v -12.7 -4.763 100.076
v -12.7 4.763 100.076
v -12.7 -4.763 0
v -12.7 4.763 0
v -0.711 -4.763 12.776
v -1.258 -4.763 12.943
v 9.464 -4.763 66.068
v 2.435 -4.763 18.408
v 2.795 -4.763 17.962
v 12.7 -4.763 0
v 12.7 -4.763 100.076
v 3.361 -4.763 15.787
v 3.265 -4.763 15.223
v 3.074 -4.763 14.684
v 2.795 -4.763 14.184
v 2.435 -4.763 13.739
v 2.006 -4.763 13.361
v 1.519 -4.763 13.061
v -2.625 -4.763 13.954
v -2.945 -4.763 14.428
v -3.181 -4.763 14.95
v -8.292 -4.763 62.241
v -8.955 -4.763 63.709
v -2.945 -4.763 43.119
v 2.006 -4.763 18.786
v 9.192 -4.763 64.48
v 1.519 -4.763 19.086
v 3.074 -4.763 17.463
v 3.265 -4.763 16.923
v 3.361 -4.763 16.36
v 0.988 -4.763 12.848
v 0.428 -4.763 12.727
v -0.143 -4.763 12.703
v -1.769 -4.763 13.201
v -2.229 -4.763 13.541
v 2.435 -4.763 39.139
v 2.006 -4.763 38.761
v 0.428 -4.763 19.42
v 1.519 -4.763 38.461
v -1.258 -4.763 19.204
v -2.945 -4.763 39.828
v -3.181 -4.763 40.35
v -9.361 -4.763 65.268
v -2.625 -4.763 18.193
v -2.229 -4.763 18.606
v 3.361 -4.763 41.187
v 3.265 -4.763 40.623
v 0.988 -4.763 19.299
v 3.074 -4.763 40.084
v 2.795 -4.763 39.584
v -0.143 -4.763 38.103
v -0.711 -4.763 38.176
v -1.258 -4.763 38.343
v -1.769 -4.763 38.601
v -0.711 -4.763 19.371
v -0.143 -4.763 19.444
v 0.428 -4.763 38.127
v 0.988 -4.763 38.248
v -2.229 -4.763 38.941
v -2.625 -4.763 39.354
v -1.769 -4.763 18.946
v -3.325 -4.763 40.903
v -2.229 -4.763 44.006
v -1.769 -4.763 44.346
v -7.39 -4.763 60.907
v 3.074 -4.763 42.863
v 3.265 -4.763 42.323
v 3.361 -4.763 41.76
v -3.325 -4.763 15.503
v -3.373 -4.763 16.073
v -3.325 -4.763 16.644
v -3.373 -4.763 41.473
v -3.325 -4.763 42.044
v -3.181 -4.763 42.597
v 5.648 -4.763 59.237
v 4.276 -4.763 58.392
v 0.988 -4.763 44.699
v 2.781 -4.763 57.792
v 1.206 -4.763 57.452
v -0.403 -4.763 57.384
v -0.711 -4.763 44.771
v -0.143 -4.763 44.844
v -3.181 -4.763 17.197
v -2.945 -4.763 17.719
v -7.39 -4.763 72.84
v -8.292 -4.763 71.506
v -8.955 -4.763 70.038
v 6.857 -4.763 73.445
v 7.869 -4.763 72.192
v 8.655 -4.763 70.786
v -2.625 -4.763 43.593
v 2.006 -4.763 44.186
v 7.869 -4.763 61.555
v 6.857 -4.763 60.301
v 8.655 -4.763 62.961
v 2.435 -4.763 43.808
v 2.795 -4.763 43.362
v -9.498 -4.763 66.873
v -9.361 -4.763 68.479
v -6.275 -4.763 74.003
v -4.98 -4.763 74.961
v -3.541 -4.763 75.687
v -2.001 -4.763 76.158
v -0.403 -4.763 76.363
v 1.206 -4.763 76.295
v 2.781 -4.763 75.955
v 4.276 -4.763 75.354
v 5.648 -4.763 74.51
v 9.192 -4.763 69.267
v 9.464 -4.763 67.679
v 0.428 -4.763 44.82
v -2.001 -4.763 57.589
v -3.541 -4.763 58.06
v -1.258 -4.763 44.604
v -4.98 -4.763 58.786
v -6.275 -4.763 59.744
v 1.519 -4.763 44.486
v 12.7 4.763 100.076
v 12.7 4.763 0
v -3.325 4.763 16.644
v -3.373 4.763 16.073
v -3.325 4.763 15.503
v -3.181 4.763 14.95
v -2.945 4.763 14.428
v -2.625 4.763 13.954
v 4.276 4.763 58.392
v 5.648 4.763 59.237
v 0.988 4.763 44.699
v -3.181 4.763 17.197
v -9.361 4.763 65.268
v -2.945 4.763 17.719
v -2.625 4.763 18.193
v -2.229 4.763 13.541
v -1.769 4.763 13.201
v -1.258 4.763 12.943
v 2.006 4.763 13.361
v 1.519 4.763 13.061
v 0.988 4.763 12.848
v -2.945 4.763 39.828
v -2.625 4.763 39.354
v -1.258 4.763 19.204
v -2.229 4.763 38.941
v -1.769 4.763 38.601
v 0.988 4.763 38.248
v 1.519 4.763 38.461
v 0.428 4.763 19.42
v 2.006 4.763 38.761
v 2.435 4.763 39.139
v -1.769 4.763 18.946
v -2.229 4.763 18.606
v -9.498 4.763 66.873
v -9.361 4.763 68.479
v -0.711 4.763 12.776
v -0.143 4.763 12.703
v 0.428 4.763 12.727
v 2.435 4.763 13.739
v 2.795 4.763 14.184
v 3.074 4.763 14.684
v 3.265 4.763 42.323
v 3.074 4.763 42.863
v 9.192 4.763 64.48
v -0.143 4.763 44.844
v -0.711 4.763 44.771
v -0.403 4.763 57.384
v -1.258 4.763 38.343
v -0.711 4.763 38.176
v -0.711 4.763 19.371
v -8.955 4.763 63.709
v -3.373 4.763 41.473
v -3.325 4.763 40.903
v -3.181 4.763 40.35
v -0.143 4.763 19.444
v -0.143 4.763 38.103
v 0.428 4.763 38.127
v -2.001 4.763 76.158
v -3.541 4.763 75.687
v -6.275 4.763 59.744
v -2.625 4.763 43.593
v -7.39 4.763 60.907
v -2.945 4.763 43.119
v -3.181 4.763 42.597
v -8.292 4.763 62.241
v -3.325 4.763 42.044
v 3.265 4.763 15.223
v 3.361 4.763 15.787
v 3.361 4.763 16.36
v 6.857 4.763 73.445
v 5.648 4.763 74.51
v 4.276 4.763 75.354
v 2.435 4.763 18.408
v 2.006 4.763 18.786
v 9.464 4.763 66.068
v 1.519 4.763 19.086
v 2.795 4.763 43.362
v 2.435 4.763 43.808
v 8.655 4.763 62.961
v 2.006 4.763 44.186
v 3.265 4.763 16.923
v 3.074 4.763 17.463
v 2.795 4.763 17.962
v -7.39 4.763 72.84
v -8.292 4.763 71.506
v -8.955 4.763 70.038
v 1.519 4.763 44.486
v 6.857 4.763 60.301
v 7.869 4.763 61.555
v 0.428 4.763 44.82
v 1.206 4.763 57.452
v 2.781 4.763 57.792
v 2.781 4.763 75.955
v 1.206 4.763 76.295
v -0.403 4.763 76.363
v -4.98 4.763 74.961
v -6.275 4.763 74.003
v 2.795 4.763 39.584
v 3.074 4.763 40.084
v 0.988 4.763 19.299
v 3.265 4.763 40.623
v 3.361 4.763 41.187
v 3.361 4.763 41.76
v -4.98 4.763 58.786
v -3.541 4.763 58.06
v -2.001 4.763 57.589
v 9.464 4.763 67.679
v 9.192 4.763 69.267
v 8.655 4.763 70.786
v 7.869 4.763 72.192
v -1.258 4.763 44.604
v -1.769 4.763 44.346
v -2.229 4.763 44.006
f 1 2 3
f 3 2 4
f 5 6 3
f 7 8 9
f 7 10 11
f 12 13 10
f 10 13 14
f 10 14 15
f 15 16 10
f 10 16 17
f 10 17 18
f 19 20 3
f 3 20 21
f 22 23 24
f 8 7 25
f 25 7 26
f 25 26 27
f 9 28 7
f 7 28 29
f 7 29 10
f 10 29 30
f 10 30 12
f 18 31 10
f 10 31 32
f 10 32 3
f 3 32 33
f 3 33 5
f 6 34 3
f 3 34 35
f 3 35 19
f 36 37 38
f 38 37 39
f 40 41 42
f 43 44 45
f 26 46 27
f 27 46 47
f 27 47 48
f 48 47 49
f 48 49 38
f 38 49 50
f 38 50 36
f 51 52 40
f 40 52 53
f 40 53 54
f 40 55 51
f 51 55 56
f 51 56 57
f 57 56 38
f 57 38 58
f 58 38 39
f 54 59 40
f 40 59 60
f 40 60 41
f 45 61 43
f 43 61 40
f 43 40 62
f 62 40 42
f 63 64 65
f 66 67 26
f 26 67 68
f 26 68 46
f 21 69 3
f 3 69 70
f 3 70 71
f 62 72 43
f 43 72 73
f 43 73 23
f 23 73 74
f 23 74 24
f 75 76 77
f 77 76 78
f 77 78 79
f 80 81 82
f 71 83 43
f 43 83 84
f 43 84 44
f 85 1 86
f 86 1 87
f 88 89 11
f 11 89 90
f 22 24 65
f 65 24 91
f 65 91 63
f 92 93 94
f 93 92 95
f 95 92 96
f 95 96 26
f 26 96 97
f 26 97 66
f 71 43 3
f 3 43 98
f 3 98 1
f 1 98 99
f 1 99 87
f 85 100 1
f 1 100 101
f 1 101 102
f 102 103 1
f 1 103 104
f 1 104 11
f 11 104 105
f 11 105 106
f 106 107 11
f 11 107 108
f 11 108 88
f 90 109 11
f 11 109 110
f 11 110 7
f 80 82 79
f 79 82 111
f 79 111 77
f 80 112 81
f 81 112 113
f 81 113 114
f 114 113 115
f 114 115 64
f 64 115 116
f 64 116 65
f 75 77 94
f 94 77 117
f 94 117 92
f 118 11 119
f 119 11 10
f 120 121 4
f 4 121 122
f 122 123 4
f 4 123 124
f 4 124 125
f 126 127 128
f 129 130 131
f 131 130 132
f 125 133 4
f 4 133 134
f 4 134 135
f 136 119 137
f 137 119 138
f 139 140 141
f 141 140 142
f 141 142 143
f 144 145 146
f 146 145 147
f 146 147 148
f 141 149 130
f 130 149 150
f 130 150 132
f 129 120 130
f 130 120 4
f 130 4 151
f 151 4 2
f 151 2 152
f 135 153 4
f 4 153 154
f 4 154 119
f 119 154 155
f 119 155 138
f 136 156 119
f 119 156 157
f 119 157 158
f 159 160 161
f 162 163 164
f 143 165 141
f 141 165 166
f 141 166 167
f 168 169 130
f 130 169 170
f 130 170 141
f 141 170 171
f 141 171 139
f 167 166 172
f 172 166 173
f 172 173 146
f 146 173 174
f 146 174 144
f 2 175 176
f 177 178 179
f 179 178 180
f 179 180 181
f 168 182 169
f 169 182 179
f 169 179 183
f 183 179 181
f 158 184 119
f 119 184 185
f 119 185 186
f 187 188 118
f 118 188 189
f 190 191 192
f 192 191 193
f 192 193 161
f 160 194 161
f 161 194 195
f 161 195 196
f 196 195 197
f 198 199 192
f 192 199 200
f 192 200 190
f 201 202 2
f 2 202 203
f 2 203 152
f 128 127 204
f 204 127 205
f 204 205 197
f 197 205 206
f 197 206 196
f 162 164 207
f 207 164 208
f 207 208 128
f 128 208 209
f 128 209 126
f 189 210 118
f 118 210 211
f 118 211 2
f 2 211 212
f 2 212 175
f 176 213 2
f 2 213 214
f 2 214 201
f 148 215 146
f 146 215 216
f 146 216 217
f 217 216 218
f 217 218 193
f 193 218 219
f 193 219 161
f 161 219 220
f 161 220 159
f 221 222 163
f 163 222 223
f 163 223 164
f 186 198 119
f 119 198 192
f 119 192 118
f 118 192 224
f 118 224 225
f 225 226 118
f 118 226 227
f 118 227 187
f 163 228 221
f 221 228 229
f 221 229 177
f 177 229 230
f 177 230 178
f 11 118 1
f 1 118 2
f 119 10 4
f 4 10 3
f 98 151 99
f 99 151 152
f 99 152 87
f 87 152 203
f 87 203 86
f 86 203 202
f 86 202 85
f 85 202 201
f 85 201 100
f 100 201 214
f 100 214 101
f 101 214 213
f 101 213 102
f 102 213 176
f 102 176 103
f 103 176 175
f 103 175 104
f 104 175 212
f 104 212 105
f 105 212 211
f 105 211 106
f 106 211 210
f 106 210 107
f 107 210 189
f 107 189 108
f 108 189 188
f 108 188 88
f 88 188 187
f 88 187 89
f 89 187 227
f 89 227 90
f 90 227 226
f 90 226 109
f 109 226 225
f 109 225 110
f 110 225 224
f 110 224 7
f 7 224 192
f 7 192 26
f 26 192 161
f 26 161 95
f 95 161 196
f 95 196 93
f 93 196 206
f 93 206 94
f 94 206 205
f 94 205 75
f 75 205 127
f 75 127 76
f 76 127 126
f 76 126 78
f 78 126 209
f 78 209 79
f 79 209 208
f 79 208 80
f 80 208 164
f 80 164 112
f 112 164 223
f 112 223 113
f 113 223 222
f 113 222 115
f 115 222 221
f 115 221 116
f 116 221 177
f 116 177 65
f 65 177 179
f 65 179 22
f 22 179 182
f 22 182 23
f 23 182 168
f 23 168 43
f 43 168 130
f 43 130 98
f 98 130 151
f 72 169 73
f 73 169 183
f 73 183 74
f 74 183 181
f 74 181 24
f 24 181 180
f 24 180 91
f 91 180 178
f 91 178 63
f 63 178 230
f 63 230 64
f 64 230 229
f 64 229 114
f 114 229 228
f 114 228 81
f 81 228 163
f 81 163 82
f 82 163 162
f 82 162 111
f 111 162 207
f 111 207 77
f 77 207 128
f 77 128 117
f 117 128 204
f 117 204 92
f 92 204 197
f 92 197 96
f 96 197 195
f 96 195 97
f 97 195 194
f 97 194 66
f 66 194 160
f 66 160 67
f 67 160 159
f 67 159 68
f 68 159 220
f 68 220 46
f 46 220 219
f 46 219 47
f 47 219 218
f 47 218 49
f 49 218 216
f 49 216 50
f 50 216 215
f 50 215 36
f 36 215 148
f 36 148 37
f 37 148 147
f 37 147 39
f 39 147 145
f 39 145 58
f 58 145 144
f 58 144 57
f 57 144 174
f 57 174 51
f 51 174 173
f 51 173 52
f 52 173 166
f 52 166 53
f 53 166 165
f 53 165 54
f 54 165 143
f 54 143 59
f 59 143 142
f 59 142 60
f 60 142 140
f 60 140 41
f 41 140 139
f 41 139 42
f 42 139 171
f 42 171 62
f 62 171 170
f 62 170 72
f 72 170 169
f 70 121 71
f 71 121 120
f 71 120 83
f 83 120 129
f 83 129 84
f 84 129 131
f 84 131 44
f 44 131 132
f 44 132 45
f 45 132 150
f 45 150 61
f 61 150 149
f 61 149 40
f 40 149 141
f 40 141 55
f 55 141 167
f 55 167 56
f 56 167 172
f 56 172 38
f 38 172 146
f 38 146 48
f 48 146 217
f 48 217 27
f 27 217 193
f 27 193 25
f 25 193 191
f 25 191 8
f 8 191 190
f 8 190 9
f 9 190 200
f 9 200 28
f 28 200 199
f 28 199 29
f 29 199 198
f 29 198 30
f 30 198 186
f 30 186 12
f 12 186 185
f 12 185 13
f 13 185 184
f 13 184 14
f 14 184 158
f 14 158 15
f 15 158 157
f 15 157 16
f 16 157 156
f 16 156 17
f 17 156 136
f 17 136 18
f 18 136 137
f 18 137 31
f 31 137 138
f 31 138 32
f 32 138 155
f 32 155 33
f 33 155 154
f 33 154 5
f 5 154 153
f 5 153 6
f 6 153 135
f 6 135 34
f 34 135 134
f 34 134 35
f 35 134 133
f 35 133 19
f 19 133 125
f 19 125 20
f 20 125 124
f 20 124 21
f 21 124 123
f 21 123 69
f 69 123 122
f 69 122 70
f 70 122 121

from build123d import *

# Parameters (mm, degrees)
SKETCH1_W           = 25.4
SKETCH1_H           = 9.525
BOSS_EXTRUDE1_DEPTH = 100.076
SKETCH2_R           = 3.3734375
SKETCH2_R_2         = 9.498
CUT_EXTRUDE1_DEPTH  = 102.3272984


with BuildPart() as part:
    # Sketch1 → Boss-Extrude1 (new body)
    with BuildSketch(Plane.XY):
        Rectangle(SKETCH1_W, SKETCH1_H)
    extrude(amount=BOSS_EXTRUDE1_DEPTH)

    # Sketch2 → Cut-Extrude1 (cut, through all)
    with BuildSketch(Plane(origin=(0, 4.7625, 0), x_dir=(1, 0, 0), z_dir=(0, 1, 0))):
        with Locations(Location((0, -16.0734375, 0), (0, 0, 180))):
            Circle(SKETCH2_R)
        with Locations(Location((0, -41.4734375, 0), (0, 0, 180))):
            Circle(SKETCH2_R)
        with Locations(Location((0, -66.8734375, 0), (0, 0, 180))):
            Circle(SKETCH2_R_2)
    extrude(amount=-CUT_EXTRUDE1_DEPTH, mode=Mode.SUBTRACT)


solid = part.part
